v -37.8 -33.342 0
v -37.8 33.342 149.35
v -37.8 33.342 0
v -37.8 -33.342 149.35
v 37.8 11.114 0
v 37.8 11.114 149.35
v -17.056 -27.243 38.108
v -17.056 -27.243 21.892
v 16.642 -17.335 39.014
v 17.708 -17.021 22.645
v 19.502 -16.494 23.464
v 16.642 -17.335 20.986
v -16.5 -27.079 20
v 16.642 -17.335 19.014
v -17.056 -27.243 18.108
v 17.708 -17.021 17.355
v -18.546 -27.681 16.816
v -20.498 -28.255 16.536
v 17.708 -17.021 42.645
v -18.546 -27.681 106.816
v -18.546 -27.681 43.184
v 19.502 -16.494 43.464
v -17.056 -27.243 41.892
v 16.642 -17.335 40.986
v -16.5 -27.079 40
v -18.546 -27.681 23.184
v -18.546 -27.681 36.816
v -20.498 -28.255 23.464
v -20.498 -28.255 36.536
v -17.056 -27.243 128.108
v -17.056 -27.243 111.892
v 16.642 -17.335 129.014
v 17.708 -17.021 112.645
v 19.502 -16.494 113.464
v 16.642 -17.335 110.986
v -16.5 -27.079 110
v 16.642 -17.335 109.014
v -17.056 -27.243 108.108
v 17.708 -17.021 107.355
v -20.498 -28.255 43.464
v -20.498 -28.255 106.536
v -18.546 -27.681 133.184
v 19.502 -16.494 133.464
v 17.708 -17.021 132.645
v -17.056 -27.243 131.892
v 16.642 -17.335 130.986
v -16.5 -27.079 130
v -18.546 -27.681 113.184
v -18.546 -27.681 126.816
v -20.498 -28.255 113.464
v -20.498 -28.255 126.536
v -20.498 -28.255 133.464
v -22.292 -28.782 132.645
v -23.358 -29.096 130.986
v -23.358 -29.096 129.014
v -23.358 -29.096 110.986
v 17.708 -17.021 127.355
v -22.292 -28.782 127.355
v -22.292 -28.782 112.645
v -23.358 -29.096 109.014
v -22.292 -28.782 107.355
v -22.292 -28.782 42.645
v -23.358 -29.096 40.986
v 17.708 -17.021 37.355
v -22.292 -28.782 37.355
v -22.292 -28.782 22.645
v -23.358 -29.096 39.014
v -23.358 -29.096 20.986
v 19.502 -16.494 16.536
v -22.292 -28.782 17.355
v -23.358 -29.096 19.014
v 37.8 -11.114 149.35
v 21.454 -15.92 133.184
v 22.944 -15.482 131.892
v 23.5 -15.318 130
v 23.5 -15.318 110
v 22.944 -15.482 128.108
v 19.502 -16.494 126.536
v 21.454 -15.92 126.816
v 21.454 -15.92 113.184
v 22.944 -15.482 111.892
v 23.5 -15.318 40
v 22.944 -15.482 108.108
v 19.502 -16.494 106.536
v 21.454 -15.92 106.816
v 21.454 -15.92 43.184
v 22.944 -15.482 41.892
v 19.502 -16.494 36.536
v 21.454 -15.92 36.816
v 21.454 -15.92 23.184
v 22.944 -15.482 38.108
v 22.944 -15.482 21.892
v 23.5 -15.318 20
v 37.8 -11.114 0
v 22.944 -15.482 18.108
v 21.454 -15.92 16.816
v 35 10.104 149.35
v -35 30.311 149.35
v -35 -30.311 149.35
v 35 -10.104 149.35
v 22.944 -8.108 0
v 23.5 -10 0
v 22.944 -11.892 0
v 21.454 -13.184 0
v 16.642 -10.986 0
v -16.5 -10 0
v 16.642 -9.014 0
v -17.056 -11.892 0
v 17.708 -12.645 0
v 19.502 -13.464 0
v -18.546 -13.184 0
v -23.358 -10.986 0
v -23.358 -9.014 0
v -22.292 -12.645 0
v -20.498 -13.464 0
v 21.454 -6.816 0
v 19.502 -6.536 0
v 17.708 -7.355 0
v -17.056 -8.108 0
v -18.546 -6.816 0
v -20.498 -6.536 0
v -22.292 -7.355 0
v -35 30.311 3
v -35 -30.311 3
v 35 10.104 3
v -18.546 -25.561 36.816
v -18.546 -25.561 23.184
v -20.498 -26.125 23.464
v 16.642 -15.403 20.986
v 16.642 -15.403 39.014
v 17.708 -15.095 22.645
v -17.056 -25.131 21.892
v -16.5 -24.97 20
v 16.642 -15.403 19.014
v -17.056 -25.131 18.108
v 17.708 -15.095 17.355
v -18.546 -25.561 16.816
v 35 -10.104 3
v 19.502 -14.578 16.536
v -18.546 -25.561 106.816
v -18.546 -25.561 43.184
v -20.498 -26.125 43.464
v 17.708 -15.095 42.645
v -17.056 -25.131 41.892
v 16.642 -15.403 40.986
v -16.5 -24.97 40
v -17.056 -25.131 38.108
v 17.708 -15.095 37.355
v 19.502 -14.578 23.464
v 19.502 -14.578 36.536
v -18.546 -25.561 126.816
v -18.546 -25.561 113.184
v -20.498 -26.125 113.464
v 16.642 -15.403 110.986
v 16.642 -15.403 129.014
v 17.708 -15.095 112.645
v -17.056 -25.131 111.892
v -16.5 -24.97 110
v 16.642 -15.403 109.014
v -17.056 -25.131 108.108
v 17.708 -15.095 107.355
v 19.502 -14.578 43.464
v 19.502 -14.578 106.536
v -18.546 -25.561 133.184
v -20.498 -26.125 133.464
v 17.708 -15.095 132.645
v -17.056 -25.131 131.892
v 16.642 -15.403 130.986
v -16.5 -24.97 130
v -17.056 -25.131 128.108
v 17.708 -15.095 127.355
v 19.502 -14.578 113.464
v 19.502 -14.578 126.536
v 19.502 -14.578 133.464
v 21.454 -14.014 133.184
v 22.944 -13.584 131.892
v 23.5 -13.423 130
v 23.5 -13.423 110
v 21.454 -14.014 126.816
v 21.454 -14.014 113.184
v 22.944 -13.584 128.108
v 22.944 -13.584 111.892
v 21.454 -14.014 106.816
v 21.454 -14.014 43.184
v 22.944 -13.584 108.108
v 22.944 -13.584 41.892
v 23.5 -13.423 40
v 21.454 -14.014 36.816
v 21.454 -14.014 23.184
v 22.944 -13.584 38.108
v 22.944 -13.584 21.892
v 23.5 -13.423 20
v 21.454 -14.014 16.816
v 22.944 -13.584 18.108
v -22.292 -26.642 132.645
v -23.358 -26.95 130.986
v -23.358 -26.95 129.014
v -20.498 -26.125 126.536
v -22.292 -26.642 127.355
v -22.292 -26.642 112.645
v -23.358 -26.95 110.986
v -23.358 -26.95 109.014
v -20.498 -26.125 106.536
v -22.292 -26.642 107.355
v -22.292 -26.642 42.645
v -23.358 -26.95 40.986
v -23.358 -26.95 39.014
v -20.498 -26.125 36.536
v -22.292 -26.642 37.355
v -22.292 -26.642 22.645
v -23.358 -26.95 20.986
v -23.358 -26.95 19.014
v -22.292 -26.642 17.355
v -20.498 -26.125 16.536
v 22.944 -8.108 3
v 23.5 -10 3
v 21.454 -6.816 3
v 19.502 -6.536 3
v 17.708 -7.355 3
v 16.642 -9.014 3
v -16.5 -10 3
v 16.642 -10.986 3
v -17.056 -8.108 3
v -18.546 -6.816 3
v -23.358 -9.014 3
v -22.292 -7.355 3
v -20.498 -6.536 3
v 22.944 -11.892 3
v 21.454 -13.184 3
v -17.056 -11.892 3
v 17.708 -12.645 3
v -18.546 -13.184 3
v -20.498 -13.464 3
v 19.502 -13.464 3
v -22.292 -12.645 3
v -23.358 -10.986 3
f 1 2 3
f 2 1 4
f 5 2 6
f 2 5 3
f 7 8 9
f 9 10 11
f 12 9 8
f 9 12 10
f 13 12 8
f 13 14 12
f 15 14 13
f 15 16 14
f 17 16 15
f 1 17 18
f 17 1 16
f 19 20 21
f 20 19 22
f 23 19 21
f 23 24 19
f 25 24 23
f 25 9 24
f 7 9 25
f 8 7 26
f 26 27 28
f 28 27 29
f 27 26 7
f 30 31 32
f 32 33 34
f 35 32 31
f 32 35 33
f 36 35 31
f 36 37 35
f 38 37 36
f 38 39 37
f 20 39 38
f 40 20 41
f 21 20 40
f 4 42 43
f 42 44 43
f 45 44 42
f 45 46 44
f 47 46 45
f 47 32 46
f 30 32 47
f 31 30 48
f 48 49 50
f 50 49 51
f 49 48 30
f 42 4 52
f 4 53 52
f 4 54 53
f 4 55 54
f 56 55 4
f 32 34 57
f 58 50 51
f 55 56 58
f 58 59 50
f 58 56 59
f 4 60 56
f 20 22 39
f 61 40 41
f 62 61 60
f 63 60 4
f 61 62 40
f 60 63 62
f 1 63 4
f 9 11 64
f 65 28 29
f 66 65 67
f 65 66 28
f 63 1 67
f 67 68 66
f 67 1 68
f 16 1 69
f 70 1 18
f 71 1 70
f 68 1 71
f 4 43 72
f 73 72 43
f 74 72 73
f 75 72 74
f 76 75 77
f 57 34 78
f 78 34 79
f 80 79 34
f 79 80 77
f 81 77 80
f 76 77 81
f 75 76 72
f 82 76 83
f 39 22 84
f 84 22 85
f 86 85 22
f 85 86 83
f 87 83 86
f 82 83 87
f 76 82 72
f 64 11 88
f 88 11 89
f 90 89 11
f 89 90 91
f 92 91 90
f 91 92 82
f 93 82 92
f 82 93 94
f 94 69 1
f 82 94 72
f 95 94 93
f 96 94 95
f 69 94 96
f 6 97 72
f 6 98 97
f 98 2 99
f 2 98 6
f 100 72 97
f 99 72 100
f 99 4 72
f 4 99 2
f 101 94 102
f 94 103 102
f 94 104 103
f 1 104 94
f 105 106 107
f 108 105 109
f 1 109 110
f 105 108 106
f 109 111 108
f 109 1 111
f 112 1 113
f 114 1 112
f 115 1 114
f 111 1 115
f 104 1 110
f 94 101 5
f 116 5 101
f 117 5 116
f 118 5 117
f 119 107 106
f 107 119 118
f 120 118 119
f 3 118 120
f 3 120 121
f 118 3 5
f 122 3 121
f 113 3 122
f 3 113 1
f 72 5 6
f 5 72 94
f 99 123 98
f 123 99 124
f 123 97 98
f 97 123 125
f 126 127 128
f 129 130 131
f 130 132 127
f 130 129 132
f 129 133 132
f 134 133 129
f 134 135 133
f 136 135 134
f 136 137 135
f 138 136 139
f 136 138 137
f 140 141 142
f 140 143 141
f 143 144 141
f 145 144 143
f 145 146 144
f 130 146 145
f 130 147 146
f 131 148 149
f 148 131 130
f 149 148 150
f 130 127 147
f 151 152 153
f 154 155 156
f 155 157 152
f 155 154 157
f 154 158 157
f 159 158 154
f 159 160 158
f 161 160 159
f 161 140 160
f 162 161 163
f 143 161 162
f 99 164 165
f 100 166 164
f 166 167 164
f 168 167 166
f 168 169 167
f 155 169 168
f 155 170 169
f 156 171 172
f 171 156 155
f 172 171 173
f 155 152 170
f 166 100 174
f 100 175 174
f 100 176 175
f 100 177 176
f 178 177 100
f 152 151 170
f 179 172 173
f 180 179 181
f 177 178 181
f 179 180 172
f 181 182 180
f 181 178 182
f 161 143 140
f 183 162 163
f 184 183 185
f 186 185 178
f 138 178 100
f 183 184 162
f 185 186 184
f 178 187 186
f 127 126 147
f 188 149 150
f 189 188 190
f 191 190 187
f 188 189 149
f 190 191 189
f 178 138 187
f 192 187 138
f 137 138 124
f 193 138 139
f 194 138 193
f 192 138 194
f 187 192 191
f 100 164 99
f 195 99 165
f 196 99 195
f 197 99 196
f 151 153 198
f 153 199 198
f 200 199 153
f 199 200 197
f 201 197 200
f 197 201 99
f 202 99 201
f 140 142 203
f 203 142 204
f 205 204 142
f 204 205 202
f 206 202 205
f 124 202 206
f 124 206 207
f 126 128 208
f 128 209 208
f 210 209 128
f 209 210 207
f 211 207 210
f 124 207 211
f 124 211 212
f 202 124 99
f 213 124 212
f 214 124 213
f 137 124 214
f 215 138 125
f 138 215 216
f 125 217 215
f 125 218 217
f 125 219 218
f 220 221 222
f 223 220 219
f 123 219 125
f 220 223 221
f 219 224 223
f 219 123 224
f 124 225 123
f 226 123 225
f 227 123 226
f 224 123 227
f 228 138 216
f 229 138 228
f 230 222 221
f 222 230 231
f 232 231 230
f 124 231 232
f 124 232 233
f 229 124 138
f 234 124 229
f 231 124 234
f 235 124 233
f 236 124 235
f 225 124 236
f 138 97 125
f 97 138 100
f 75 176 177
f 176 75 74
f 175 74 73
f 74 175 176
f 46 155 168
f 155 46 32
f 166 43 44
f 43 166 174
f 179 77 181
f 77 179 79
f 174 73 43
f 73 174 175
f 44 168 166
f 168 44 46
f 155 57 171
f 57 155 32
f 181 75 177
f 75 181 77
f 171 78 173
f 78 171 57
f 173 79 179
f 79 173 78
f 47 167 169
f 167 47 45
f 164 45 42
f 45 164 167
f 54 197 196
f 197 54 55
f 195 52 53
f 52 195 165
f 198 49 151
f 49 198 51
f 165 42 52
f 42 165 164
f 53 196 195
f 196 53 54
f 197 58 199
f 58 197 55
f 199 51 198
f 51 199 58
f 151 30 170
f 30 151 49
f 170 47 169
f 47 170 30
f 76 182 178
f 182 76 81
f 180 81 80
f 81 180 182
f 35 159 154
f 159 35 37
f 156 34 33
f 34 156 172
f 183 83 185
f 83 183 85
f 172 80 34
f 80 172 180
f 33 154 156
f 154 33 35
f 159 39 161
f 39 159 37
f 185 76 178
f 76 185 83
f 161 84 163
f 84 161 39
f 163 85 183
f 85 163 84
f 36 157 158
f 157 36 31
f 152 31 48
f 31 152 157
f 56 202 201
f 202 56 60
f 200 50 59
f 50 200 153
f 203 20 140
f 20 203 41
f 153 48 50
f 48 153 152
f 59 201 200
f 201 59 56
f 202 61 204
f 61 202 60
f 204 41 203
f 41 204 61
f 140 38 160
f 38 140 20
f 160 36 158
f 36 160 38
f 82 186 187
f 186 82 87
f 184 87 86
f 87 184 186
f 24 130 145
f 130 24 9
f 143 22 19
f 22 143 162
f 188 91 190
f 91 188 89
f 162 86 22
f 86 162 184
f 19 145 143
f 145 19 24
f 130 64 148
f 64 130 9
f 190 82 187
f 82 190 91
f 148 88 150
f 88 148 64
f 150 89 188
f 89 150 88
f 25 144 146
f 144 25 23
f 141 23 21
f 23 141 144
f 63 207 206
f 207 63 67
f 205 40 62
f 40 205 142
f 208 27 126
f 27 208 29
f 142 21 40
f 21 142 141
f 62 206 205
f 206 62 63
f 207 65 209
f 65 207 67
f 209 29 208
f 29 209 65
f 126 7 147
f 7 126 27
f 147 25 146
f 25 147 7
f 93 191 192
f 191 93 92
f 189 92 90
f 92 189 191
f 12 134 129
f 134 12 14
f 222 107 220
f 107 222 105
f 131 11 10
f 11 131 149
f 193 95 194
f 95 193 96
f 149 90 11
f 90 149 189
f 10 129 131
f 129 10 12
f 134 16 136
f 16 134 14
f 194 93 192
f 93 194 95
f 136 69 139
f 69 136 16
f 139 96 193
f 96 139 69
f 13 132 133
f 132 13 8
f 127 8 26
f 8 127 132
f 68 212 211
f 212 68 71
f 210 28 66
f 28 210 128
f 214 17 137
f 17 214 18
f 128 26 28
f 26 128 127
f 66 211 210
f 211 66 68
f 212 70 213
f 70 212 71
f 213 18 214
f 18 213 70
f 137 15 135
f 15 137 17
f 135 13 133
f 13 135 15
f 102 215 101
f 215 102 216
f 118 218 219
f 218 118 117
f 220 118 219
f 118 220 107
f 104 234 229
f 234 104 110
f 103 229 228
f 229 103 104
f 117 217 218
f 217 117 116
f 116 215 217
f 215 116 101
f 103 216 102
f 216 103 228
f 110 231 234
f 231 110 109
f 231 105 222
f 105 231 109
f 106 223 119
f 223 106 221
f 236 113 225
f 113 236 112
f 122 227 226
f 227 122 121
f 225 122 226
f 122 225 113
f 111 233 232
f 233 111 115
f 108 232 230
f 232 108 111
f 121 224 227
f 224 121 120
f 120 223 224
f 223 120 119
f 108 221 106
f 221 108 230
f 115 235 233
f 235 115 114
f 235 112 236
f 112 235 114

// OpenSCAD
module envelope()
{
    difference()
    {
        scale([1,0.5,1]) cylinder(r=70, h=145, $fn=3);
        union()
        {
            translate([35, -20, -2]) cube([50, 40, 180]);    
        }   
    }
}

module case()
{
    difference()
    {
        scale([1.08, 1.1, 1.03]) envelope();
        union()
        {
            translate([0,0,3]) scale([1,1,1.08]) envelope();
            translate([ 20,-10,130])rotate([90,0,0]) cylinder(r=3.5, h=30);
            translate([-20,-10,130])rotate([90,0,0]) cylinder(r=3.5, h=30);
            translate([ 20,-10,110])rotate([90,0,0]) cylinder(r=3.5, h=30);
            translate([-20,-10,110])rotate([90,0,0]) cylinder(r=3.5, h=30);
            translate([ 20,-10, 40])rotate([90,0,0]) cylinder(r=3.5, h=30);
            translate([-20,-10, 40])rotate([90,0,0]) cylinder(r=3.5, h=30);
            translate([ 20,-10, 20])rotate([90,0,0]) cylinder(r=3.5, h=30);
            translate([-20,-10, 20])rotate([90,0,0]) cylinder(r=3.5, h=30);
            translate([ 20,-10, -5])cylinder(r=3.5, h=30);
            translate([-20,-10, -5])cylinder(r=3.5, h=30);
        }
    }
}

case();
